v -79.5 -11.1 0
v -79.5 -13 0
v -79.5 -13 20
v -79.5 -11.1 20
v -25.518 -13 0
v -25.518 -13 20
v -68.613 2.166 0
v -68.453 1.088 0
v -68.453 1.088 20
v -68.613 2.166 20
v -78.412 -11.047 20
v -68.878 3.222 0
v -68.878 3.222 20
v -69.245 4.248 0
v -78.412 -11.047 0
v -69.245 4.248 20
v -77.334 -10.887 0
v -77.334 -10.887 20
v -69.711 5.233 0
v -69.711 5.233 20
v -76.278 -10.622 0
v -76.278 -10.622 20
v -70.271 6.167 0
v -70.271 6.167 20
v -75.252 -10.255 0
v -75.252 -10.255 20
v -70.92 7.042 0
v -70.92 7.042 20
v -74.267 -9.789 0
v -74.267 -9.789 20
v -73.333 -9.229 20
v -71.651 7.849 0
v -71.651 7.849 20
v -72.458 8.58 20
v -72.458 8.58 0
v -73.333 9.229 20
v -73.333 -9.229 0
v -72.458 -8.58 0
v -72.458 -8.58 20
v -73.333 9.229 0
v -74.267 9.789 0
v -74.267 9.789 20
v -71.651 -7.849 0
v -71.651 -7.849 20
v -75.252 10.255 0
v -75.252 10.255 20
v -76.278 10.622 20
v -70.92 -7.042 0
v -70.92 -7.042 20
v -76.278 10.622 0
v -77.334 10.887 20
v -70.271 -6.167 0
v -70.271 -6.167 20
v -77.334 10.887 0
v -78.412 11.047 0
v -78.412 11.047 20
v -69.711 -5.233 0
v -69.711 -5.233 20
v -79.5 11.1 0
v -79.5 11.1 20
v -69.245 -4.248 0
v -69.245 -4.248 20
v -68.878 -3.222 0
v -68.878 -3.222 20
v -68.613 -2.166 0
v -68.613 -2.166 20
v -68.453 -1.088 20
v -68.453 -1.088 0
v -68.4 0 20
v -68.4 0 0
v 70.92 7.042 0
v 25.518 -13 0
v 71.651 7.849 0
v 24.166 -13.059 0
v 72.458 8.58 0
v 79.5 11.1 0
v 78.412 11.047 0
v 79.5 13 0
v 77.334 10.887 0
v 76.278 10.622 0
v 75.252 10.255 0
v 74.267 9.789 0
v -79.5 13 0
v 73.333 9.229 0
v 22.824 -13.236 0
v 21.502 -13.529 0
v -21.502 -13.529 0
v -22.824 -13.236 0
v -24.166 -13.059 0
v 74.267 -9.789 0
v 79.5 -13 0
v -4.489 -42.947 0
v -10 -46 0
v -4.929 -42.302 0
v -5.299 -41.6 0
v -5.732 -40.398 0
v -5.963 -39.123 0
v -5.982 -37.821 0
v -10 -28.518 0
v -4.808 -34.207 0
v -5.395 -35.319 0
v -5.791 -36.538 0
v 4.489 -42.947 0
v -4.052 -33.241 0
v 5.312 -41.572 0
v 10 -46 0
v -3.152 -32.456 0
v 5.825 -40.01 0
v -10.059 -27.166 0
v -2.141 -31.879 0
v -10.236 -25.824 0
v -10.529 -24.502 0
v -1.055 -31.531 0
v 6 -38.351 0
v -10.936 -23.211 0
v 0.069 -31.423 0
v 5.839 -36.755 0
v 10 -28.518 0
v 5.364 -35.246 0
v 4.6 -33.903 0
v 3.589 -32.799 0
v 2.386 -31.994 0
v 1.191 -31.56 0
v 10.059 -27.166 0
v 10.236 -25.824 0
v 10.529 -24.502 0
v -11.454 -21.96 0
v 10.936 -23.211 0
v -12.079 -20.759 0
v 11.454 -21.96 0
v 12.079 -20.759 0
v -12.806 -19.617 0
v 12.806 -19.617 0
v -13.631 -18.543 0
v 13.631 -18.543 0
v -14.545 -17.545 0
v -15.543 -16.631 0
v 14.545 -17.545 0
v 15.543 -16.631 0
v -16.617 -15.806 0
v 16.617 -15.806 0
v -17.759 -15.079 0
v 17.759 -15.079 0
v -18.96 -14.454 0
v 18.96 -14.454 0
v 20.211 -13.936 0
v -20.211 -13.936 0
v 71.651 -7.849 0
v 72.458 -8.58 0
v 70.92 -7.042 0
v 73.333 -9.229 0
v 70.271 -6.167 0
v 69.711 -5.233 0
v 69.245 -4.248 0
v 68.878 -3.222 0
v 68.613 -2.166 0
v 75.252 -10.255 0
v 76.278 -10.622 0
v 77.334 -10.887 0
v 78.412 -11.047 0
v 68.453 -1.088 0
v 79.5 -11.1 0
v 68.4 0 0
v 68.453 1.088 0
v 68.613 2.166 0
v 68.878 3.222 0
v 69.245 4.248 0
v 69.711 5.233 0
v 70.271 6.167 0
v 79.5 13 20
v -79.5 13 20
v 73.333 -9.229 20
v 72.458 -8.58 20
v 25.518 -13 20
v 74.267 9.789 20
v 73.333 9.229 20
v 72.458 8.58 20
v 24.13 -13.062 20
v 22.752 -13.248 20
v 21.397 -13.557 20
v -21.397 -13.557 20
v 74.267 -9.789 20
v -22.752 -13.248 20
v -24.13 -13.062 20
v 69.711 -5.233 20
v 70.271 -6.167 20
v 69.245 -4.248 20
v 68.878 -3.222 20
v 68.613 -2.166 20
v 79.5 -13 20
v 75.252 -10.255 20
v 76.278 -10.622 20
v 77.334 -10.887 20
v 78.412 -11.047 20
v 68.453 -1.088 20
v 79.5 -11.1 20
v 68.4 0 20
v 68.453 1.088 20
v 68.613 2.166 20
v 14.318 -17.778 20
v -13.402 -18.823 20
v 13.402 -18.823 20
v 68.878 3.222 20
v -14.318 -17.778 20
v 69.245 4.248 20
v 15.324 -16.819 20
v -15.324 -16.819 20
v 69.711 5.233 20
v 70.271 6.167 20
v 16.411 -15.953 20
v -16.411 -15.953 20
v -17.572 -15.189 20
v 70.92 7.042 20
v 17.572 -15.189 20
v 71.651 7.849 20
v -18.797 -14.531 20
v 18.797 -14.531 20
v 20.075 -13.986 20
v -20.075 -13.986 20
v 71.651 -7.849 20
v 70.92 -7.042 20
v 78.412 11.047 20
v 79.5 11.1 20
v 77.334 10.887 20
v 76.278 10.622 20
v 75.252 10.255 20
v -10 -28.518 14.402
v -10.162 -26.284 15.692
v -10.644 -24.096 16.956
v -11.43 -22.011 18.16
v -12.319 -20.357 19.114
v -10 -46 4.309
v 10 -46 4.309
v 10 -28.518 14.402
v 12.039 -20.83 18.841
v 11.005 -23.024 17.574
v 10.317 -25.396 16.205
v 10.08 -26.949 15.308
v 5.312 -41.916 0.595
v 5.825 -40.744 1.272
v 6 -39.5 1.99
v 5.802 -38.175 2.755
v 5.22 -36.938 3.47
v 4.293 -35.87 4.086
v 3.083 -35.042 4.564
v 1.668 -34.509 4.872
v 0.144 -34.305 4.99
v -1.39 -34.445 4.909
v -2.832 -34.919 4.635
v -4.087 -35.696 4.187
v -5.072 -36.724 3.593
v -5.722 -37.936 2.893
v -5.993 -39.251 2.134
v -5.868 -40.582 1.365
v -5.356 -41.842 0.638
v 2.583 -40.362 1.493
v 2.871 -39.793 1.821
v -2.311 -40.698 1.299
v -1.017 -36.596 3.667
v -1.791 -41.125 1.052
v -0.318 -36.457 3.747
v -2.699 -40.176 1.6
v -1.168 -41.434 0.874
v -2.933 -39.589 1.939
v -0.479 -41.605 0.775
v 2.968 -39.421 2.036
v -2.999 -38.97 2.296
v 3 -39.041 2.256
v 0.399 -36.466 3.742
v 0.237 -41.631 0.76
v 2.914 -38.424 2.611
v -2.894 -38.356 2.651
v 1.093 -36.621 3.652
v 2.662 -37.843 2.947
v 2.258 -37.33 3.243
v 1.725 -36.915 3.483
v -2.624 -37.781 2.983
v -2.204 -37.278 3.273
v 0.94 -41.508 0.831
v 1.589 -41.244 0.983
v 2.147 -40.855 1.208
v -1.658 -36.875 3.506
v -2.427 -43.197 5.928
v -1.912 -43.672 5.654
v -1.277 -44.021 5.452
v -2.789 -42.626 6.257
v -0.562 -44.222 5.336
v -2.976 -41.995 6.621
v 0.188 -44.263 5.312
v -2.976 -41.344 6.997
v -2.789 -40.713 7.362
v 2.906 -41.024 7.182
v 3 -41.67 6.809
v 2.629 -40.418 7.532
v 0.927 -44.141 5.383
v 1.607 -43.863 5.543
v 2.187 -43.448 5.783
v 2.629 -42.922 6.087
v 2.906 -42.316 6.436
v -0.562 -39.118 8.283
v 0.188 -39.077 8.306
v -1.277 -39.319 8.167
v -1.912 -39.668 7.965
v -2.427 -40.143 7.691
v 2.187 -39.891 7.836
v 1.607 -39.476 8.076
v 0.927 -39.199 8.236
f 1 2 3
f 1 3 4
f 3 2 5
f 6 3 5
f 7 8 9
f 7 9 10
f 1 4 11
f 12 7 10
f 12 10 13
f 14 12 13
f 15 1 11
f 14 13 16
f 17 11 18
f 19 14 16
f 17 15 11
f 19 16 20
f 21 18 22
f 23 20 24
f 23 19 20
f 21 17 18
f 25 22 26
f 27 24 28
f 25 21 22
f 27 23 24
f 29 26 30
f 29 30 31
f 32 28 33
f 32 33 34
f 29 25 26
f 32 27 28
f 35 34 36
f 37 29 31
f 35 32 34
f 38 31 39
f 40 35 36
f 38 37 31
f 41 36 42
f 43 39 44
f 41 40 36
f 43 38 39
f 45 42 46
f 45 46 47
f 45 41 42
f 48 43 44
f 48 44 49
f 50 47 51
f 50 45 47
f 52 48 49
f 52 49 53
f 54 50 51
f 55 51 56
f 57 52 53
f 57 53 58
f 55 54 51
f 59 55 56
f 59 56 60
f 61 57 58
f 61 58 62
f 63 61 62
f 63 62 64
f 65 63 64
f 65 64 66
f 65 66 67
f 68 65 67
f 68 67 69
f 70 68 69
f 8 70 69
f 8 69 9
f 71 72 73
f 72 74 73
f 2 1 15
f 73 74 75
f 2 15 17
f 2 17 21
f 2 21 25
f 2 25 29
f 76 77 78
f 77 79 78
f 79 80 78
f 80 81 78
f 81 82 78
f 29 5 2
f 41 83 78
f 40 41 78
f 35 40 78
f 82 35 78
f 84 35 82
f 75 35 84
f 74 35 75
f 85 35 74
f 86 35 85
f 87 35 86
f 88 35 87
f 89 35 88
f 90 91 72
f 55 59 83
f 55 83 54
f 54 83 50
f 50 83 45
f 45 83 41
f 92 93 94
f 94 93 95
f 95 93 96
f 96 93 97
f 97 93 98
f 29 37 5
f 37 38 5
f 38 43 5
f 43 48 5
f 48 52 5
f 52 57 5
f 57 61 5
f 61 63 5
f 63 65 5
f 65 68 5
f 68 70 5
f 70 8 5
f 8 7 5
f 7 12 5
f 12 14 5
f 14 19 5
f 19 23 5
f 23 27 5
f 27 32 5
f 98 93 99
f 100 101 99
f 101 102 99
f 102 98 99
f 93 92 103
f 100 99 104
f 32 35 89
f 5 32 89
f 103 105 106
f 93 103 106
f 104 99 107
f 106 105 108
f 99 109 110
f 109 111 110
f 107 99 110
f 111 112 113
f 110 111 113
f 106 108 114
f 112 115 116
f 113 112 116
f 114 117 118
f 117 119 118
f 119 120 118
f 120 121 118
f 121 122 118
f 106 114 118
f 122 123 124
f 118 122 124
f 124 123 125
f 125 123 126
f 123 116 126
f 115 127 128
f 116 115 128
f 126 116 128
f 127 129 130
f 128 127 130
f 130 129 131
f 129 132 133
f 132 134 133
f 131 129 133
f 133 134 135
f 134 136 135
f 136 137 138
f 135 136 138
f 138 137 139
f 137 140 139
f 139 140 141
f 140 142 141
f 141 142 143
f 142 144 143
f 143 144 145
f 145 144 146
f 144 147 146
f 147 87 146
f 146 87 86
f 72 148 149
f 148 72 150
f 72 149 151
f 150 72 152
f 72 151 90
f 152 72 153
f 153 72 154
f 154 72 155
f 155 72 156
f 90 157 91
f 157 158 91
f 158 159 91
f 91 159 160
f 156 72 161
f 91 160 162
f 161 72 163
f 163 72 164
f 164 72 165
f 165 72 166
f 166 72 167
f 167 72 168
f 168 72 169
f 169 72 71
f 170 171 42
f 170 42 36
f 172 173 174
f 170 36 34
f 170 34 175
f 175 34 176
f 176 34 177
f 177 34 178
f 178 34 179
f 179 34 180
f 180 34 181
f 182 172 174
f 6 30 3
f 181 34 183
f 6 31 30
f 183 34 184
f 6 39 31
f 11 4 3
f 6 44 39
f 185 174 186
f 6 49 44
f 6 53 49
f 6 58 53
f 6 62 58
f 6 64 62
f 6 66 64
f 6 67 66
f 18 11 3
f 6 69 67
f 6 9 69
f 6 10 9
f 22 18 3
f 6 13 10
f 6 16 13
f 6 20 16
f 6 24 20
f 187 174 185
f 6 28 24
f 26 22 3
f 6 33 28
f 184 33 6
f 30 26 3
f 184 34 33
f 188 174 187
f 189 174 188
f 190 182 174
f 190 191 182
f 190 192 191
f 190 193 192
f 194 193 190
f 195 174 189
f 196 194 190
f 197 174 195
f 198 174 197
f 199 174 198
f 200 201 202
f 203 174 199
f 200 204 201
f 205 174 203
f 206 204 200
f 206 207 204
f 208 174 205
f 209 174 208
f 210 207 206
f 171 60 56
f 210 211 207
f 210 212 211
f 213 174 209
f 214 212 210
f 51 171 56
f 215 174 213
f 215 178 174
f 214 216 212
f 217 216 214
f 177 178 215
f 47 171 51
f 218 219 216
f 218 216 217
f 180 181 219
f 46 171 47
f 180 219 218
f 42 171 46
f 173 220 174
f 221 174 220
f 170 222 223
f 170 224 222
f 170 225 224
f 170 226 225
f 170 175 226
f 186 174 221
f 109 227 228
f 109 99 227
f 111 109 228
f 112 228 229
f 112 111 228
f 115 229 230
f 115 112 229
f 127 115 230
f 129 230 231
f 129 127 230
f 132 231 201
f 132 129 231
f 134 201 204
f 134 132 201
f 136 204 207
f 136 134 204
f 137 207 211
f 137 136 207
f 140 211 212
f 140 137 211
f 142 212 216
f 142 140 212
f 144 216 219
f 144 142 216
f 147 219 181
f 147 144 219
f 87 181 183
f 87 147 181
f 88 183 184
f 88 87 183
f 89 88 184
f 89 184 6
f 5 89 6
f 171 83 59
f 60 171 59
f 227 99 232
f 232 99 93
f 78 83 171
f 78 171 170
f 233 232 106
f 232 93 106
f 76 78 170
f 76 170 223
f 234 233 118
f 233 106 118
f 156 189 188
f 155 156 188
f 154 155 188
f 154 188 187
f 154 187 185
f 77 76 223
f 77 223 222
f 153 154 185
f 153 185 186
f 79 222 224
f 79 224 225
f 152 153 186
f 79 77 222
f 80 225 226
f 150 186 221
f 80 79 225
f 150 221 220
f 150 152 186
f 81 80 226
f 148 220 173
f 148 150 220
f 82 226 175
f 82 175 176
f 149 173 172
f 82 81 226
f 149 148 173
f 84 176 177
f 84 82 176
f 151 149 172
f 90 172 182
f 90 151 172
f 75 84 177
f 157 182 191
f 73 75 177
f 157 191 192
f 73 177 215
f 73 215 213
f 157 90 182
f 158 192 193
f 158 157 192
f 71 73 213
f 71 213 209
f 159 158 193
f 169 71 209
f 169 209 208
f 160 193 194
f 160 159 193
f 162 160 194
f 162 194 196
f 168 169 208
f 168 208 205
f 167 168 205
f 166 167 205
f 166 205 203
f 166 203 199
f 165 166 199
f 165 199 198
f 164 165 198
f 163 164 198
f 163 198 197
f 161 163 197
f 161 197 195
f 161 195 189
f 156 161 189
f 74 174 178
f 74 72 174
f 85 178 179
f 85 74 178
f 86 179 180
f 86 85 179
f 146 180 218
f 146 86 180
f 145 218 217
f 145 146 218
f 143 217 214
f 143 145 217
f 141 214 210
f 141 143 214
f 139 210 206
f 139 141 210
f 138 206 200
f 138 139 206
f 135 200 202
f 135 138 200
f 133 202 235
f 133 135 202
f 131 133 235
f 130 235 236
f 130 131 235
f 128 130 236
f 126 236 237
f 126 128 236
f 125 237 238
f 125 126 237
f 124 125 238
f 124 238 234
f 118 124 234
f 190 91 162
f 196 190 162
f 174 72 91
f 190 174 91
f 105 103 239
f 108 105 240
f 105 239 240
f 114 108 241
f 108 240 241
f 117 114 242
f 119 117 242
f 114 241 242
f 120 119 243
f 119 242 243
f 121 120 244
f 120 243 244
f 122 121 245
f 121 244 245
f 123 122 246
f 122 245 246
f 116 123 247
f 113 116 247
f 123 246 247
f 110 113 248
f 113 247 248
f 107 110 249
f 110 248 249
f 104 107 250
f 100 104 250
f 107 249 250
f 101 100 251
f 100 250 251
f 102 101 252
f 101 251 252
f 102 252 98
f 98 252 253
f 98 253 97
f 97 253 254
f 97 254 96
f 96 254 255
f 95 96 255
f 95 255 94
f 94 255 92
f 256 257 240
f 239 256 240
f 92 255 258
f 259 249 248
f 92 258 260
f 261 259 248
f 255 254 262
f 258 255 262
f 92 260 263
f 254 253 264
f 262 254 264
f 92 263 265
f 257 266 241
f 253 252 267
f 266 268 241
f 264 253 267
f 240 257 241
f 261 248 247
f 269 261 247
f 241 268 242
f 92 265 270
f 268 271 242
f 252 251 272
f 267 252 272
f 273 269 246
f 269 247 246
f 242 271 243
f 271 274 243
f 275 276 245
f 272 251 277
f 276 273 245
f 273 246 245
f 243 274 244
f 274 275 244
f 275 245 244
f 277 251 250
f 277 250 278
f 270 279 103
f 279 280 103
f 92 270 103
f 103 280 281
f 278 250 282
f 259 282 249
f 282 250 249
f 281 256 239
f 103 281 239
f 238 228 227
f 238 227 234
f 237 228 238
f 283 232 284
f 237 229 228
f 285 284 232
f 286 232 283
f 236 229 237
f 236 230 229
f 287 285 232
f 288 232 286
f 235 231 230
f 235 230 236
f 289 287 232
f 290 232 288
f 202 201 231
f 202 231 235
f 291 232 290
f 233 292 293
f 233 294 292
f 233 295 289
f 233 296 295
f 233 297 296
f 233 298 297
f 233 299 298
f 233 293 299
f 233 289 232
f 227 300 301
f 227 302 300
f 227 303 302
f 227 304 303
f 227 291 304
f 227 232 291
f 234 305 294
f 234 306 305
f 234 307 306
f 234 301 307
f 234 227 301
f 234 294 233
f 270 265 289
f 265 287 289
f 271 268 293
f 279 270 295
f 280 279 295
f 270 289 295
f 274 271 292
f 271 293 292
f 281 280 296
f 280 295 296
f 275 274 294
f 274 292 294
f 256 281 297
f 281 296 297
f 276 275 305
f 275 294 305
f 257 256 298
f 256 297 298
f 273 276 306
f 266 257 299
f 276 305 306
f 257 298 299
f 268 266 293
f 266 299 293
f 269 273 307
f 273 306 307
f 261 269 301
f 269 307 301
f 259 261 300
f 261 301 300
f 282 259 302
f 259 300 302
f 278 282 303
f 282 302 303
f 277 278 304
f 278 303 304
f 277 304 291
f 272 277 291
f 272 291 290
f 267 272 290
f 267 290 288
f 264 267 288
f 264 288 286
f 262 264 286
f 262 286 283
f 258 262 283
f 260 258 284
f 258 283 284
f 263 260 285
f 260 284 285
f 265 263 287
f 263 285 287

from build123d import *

# Parameters (mm, degrees)
CYLINDER_R               = 6
CYLINDER_DEPTH           = 15
CYLINDER_PLACEMENT_ANGLE = 29.9999898558
BOX_W                    = 30
BOX_H                    = 50
BOX_DEPTH                = 30
BOX_ROLL_ANGLE           = 29.9998791688
PAD_DEPTH                = 20
SKETCH001_R              = 3
POCKET_DEPTH             = 33.2329378555


with BuildPart() as cylinder:
    # Cylinder → Cylinder (new body)
    with BuildSketch(Plane.XY):
        Circle(CYLINDER_R)
    extrude(amount=CYLINDER_DEPTH)


with BuildPart() as cylinder_1:
    # Cylinder placement: moved
    add(cylinder.part.moved(Location((0, -32, -11))).rotate(Axis((0, -32, -11), (1, 0, 0)), CYLINDER_PLACEMENT_ANGLE))


with BuildPart() as box:
    # Box → Box (new body)
    with BuildSketch(Plane.XY):
        with Locations((15, 25)):
            Rectangle(BOX_W, BOX_H)
    extrude(amount=BOX_DEPTH)


with BuildPart() as box_1:
    # Box roll: moved
    add(box.part.rotate(Axis((0, 0, 0), (1, 0, 0)), BOX_ROLL_ANGLE))


with BuildPart() as box_2:
    # Box placement: moved
    add(box_1.part.moved(Location((-15, -50, 2))))


with BuildPart() as cut001:
    # Sketch → Pad (new body)
    with BuildSketch(Plane.XY):
        with BuildLine():
            Line((-79.5, 13), (79.5, 13))
            Line((79.5, 13), (79.5, 11.1))
            ThreePointArc((79.5, 11.1), (68.4, 0), (79.5, -11.1))
            Line((79.5, -13), (79.5, -11.1))
            Line((25.5184, -13), (79.5, -13))
            ThreePointArc((25.5184, -13), (14.5452341268, -17.5452341268), (10, -28.5184))
            Line((10, -46), (10, -28.5184))
            Line((-10, -46), (10, -46))
            Line((-10, -28.5184), (-10, -46))
            ThreePointArc((-10, -28.5184), (-14.5452341268, -17.5452341268), (-25.5184, -13))
            Line((-79.5, -13), (-25.5184, -13))
            Line((-79.5, -13), (-79.5, -11.1))
            ThreePointArc((-79.5, -11.1), (-68.4, 0), (-79.5, 11.1))
            Line((-79.5, 13), (-79.5, 11.1))
        make_face()
    extrude(amount=PAD_DEPTH)

    # Cut: cut Box
    add(box_2.part, mode=Mode.SUBTRACT)

    # Sketch001 → Pocket (cut, through all)
    with BuildSketch(Plane(origin=(0, -13.3659319768, 23.1505860246), x_dir=(1, 0, 0), z_dir=(0, -0.4999981736, 0.8660264582))):
        with Locations((0, -32.6825300346)):
            Circle(SKETCH001_R)
    extrude(amount=-POCKET_DEPTH, mode=Mode.SUBTRACT)

    # Cut001: cut Cylinder
    add(cylinder_1.part, mode=Mode.SUBTRACT)


solid = cut001.part
